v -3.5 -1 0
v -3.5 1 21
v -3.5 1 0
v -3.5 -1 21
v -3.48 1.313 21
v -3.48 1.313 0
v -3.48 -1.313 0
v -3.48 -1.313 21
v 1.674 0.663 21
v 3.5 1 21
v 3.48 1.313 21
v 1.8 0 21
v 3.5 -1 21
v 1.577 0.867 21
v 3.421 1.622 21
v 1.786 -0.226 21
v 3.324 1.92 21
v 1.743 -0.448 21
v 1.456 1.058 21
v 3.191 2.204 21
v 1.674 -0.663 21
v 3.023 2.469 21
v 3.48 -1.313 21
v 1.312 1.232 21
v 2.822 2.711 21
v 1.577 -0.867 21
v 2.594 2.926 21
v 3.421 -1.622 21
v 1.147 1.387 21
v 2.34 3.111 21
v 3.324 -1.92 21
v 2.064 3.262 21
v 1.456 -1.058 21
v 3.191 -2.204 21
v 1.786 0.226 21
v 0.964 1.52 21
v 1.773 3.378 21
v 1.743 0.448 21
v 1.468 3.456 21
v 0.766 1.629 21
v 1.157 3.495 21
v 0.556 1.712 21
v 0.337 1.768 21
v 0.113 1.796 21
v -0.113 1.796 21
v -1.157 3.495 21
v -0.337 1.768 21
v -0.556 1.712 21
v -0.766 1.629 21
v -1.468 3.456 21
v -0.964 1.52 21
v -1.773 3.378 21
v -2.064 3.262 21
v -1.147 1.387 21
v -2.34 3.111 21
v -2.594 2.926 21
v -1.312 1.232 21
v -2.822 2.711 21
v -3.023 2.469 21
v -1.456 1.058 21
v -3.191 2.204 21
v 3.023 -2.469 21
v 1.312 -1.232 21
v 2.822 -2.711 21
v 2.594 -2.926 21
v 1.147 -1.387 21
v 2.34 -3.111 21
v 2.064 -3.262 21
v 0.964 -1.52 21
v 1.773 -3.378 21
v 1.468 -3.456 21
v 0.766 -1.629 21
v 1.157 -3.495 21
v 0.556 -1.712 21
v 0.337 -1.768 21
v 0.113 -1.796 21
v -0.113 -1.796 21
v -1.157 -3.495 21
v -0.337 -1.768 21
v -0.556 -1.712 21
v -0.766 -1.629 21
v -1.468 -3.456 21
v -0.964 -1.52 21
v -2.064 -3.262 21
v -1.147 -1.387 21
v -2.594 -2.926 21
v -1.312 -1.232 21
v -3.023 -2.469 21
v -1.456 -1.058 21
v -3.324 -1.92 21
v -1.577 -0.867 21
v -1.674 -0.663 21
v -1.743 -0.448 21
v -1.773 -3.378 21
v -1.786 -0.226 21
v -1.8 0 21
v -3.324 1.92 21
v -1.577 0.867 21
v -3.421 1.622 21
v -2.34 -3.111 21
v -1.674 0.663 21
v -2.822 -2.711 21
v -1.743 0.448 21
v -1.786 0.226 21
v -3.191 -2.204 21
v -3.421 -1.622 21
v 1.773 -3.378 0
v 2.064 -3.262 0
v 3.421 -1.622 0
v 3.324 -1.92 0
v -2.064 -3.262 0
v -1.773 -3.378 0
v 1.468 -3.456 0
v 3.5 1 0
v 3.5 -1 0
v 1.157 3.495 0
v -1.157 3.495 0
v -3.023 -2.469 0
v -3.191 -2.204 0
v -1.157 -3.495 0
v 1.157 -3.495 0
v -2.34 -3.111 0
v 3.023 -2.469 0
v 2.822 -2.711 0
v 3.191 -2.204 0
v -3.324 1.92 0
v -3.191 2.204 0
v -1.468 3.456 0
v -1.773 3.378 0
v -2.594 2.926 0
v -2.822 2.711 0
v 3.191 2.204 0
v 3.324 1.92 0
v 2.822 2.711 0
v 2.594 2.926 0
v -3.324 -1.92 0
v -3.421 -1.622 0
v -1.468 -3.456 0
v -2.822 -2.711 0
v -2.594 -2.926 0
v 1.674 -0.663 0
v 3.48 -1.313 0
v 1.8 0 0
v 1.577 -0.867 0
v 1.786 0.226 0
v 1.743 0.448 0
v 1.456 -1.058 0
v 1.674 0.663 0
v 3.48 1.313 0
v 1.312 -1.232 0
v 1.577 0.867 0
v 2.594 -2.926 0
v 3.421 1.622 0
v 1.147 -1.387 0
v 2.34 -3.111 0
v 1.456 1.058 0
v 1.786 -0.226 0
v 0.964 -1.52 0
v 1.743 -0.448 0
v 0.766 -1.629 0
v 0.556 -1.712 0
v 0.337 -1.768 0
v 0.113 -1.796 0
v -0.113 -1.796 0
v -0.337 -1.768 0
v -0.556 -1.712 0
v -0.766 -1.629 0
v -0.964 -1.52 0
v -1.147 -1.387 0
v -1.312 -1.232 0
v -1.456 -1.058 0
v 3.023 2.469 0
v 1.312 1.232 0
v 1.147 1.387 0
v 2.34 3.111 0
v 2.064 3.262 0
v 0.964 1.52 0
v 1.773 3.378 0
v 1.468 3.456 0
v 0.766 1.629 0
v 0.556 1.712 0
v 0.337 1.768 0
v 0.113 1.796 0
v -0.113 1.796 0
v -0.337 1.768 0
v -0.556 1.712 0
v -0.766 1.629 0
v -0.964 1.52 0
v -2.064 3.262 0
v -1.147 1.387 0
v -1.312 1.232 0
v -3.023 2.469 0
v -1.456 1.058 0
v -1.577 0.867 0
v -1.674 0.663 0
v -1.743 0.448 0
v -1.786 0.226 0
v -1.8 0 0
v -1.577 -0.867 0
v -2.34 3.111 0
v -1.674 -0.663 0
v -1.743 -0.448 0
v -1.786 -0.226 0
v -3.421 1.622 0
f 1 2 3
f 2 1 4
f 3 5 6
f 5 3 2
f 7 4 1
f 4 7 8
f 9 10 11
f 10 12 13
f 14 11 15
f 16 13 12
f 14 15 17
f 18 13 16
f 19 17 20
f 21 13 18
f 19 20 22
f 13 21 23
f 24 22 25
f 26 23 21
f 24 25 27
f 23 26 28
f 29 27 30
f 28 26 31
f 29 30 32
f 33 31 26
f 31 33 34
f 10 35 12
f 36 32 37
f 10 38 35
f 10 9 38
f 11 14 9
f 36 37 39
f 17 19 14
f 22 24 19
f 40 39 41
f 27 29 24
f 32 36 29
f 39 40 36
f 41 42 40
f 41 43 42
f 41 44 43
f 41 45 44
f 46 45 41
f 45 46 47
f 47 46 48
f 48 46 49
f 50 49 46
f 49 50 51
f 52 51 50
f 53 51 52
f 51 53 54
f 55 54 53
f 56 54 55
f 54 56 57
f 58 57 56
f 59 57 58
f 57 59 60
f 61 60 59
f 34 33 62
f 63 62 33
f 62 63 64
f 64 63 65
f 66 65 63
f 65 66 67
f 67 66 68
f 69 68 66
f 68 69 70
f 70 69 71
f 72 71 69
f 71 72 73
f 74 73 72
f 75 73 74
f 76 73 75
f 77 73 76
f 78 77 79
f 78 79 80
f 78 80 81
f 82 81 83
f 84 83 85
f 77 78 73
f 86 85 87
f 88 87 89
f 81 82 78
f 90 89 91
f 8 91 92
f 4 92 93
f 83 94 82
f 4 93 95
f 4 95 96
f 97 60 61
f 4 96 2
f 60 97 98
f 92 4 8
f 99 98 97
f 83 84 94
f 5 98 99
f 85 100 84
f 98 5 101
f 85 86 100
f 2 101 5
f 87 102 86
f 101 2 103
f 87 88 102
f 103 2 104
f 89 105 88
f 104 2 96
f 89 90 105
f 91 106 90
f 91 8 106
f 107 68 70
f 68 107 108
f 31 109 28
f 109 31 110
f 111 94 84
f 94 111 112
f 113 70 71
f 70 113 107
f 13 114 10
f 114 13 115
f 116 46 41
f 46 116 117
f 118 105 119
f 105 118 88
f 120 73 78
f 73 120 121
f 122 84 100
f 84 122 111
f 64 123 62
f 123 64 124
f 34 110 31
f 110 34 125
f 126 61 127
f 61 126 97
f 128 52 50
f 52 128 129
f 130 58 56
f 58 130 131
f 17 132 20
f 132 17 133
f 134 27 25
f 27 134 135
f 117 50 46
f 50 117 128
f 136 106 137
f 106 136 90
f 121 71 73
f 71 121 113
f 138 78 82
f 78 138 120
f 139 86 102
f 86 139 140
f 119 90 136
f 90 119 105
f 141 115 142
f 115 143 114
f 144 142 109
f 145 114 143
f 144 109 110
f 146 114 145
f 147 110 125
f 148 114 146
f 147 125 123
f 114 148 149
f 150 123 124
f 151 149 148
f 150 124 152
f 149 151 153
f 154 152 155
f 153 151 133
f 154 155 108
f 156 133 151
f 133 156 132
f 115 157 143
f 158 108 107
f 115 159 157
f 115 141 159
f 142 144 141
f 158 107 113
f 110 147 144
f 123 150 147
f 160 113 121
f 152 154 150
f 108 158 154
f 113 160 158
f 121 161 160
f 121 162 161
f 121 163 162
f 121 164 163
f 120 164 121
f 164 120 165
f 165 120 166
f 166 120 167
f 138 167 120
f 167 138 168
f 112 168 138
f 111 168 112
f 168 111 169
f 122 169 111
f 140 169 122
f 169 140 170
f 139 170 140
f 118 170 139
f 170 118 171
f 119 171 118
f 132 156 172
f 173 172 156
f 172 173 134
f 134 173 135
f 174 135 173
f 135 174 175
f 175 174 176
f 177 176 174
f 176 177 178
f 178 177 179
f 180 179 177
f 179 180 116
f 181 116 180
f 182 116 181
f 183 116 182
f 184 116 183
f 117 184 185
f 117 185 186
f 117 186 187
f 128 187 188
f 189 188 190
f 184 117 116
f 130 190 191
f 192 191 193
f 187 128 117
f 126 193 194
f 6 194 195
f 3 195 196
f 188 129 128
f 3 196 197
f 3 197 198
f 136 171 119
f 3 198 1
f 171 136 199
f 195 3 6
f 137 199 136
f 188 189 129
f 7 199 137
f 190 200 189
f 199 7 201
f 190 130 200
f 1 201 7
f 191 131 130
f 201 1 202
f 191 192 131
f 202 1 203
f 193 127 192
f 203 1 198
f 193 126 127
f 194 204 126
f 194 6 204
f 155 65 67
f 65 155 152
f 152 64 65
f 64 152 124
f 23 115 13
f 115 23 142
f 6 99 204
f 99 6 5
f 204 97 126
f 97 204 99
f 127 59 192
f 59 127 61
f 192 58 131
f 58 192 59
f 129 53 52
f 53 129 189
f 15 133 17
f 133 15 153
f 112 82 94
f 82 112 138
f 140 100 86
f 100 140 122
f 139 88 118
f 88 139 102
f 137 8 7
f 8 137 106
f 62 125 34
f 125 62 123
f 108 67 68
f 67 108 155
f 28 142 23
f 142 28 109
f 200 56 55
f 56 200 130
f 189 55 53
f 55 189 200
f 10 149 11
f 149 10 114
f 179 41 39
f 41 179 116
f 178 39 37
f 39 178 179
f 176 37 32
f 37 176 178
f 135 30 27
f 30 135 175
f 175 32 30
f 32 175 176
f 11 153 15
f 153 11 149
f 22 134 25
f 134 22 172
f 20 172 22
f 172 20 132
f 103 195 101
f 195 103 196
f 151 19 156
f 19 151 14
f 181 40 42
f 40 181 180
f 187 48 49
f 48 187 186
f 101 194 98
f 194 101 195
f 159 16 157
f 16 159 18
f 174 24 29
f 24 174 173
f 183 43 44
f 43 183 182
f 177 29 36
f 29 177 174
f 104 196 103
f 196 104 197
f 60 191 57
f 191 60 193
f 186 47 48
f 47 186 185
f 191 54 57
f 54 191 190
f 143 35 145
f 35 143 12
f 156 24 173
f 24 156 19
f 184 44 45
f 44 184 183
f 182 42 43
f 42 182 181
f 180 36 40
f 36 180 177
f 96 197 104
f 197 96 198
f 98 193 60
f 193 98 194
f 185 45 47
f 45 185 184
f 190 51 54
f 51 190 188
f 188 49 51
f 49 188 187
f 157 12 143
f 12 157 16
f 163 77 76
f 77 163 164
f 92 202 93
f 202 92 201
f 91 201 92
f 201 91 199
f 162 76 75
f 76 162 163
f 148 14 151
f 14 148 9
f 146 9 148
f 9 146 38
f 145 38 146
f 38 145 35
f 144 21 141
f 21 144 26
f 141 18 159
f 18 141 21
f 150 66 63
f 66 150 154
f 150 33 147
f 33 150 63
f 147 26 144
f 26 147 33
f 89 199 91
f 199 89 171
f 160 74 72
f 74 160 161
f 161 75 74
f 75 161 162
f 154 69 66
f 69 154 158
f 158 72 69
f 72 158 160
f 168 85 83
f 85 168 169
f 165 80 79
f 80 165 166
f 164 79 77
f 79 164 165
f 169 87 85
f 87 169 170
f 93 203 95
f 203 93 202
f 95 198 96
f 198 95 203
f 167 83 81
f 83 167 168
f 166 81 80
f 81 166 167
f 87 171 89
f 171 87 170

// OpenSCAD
$fn = 50;


difference() {
	union() {
		translate(v = [0, 0, 0]) {
			rotate(a = [0, 0, 0]) {
				hull() {
					translate(v = [-1.0000000000, 1.0000000000, 0]) {
						rotate(a = [0, 0, 0]) {
							translate(v = [0, 0, 0]) {
								rotate(a = [0, 0, 0]) {
									cylinder(h = 21, r = 2.5000000000);
								}
							}
						}
					}
					translate(v = [1.0000000000, 1.0000000000, 0]) {
						rotate(a = [0, 0, 0]) {
							translate(v = [0, 0, 0]) {
								rotate(a = [0, 0, 0]) {
									cylinder(h = 21, r = 2.5000000000);
								}
							}
						}
					}
					translate(v = [-1.0000000000, -1.0000000000, 0]) {
						rotate(a = [0, 0, 0]) {
							translate(v = [0, 0, 0]) {
								rotate(a = [0, 0, 0]) {
									cylinder(h = 21, r = 2.5000000000);
								}
							}
						}
					}
					translate(v = [1.0000000000, -1.0000000000, 0]) {
						rotate(a = [0, 0, 0]) {
							translate(v = [0, 0, 0]) {
								rotate(a = [0, 0, 0]) {
									cylinder(h = 21, r = 2.5000000000);
								}
							}
						}
					}
				}
			}
		}
	}
	union() {
		translate(v = [0.0000000000, 0.0000000000, 0]) {
			rotate(a = [0, 0, 0]) {
				translate(v = [0, 0, -50]) {
					rotate(a = [0, 0, 0]) {
						cylinder(h = 100, r = 1.8000000000);
					}
				}
			}
		}
	}
}
